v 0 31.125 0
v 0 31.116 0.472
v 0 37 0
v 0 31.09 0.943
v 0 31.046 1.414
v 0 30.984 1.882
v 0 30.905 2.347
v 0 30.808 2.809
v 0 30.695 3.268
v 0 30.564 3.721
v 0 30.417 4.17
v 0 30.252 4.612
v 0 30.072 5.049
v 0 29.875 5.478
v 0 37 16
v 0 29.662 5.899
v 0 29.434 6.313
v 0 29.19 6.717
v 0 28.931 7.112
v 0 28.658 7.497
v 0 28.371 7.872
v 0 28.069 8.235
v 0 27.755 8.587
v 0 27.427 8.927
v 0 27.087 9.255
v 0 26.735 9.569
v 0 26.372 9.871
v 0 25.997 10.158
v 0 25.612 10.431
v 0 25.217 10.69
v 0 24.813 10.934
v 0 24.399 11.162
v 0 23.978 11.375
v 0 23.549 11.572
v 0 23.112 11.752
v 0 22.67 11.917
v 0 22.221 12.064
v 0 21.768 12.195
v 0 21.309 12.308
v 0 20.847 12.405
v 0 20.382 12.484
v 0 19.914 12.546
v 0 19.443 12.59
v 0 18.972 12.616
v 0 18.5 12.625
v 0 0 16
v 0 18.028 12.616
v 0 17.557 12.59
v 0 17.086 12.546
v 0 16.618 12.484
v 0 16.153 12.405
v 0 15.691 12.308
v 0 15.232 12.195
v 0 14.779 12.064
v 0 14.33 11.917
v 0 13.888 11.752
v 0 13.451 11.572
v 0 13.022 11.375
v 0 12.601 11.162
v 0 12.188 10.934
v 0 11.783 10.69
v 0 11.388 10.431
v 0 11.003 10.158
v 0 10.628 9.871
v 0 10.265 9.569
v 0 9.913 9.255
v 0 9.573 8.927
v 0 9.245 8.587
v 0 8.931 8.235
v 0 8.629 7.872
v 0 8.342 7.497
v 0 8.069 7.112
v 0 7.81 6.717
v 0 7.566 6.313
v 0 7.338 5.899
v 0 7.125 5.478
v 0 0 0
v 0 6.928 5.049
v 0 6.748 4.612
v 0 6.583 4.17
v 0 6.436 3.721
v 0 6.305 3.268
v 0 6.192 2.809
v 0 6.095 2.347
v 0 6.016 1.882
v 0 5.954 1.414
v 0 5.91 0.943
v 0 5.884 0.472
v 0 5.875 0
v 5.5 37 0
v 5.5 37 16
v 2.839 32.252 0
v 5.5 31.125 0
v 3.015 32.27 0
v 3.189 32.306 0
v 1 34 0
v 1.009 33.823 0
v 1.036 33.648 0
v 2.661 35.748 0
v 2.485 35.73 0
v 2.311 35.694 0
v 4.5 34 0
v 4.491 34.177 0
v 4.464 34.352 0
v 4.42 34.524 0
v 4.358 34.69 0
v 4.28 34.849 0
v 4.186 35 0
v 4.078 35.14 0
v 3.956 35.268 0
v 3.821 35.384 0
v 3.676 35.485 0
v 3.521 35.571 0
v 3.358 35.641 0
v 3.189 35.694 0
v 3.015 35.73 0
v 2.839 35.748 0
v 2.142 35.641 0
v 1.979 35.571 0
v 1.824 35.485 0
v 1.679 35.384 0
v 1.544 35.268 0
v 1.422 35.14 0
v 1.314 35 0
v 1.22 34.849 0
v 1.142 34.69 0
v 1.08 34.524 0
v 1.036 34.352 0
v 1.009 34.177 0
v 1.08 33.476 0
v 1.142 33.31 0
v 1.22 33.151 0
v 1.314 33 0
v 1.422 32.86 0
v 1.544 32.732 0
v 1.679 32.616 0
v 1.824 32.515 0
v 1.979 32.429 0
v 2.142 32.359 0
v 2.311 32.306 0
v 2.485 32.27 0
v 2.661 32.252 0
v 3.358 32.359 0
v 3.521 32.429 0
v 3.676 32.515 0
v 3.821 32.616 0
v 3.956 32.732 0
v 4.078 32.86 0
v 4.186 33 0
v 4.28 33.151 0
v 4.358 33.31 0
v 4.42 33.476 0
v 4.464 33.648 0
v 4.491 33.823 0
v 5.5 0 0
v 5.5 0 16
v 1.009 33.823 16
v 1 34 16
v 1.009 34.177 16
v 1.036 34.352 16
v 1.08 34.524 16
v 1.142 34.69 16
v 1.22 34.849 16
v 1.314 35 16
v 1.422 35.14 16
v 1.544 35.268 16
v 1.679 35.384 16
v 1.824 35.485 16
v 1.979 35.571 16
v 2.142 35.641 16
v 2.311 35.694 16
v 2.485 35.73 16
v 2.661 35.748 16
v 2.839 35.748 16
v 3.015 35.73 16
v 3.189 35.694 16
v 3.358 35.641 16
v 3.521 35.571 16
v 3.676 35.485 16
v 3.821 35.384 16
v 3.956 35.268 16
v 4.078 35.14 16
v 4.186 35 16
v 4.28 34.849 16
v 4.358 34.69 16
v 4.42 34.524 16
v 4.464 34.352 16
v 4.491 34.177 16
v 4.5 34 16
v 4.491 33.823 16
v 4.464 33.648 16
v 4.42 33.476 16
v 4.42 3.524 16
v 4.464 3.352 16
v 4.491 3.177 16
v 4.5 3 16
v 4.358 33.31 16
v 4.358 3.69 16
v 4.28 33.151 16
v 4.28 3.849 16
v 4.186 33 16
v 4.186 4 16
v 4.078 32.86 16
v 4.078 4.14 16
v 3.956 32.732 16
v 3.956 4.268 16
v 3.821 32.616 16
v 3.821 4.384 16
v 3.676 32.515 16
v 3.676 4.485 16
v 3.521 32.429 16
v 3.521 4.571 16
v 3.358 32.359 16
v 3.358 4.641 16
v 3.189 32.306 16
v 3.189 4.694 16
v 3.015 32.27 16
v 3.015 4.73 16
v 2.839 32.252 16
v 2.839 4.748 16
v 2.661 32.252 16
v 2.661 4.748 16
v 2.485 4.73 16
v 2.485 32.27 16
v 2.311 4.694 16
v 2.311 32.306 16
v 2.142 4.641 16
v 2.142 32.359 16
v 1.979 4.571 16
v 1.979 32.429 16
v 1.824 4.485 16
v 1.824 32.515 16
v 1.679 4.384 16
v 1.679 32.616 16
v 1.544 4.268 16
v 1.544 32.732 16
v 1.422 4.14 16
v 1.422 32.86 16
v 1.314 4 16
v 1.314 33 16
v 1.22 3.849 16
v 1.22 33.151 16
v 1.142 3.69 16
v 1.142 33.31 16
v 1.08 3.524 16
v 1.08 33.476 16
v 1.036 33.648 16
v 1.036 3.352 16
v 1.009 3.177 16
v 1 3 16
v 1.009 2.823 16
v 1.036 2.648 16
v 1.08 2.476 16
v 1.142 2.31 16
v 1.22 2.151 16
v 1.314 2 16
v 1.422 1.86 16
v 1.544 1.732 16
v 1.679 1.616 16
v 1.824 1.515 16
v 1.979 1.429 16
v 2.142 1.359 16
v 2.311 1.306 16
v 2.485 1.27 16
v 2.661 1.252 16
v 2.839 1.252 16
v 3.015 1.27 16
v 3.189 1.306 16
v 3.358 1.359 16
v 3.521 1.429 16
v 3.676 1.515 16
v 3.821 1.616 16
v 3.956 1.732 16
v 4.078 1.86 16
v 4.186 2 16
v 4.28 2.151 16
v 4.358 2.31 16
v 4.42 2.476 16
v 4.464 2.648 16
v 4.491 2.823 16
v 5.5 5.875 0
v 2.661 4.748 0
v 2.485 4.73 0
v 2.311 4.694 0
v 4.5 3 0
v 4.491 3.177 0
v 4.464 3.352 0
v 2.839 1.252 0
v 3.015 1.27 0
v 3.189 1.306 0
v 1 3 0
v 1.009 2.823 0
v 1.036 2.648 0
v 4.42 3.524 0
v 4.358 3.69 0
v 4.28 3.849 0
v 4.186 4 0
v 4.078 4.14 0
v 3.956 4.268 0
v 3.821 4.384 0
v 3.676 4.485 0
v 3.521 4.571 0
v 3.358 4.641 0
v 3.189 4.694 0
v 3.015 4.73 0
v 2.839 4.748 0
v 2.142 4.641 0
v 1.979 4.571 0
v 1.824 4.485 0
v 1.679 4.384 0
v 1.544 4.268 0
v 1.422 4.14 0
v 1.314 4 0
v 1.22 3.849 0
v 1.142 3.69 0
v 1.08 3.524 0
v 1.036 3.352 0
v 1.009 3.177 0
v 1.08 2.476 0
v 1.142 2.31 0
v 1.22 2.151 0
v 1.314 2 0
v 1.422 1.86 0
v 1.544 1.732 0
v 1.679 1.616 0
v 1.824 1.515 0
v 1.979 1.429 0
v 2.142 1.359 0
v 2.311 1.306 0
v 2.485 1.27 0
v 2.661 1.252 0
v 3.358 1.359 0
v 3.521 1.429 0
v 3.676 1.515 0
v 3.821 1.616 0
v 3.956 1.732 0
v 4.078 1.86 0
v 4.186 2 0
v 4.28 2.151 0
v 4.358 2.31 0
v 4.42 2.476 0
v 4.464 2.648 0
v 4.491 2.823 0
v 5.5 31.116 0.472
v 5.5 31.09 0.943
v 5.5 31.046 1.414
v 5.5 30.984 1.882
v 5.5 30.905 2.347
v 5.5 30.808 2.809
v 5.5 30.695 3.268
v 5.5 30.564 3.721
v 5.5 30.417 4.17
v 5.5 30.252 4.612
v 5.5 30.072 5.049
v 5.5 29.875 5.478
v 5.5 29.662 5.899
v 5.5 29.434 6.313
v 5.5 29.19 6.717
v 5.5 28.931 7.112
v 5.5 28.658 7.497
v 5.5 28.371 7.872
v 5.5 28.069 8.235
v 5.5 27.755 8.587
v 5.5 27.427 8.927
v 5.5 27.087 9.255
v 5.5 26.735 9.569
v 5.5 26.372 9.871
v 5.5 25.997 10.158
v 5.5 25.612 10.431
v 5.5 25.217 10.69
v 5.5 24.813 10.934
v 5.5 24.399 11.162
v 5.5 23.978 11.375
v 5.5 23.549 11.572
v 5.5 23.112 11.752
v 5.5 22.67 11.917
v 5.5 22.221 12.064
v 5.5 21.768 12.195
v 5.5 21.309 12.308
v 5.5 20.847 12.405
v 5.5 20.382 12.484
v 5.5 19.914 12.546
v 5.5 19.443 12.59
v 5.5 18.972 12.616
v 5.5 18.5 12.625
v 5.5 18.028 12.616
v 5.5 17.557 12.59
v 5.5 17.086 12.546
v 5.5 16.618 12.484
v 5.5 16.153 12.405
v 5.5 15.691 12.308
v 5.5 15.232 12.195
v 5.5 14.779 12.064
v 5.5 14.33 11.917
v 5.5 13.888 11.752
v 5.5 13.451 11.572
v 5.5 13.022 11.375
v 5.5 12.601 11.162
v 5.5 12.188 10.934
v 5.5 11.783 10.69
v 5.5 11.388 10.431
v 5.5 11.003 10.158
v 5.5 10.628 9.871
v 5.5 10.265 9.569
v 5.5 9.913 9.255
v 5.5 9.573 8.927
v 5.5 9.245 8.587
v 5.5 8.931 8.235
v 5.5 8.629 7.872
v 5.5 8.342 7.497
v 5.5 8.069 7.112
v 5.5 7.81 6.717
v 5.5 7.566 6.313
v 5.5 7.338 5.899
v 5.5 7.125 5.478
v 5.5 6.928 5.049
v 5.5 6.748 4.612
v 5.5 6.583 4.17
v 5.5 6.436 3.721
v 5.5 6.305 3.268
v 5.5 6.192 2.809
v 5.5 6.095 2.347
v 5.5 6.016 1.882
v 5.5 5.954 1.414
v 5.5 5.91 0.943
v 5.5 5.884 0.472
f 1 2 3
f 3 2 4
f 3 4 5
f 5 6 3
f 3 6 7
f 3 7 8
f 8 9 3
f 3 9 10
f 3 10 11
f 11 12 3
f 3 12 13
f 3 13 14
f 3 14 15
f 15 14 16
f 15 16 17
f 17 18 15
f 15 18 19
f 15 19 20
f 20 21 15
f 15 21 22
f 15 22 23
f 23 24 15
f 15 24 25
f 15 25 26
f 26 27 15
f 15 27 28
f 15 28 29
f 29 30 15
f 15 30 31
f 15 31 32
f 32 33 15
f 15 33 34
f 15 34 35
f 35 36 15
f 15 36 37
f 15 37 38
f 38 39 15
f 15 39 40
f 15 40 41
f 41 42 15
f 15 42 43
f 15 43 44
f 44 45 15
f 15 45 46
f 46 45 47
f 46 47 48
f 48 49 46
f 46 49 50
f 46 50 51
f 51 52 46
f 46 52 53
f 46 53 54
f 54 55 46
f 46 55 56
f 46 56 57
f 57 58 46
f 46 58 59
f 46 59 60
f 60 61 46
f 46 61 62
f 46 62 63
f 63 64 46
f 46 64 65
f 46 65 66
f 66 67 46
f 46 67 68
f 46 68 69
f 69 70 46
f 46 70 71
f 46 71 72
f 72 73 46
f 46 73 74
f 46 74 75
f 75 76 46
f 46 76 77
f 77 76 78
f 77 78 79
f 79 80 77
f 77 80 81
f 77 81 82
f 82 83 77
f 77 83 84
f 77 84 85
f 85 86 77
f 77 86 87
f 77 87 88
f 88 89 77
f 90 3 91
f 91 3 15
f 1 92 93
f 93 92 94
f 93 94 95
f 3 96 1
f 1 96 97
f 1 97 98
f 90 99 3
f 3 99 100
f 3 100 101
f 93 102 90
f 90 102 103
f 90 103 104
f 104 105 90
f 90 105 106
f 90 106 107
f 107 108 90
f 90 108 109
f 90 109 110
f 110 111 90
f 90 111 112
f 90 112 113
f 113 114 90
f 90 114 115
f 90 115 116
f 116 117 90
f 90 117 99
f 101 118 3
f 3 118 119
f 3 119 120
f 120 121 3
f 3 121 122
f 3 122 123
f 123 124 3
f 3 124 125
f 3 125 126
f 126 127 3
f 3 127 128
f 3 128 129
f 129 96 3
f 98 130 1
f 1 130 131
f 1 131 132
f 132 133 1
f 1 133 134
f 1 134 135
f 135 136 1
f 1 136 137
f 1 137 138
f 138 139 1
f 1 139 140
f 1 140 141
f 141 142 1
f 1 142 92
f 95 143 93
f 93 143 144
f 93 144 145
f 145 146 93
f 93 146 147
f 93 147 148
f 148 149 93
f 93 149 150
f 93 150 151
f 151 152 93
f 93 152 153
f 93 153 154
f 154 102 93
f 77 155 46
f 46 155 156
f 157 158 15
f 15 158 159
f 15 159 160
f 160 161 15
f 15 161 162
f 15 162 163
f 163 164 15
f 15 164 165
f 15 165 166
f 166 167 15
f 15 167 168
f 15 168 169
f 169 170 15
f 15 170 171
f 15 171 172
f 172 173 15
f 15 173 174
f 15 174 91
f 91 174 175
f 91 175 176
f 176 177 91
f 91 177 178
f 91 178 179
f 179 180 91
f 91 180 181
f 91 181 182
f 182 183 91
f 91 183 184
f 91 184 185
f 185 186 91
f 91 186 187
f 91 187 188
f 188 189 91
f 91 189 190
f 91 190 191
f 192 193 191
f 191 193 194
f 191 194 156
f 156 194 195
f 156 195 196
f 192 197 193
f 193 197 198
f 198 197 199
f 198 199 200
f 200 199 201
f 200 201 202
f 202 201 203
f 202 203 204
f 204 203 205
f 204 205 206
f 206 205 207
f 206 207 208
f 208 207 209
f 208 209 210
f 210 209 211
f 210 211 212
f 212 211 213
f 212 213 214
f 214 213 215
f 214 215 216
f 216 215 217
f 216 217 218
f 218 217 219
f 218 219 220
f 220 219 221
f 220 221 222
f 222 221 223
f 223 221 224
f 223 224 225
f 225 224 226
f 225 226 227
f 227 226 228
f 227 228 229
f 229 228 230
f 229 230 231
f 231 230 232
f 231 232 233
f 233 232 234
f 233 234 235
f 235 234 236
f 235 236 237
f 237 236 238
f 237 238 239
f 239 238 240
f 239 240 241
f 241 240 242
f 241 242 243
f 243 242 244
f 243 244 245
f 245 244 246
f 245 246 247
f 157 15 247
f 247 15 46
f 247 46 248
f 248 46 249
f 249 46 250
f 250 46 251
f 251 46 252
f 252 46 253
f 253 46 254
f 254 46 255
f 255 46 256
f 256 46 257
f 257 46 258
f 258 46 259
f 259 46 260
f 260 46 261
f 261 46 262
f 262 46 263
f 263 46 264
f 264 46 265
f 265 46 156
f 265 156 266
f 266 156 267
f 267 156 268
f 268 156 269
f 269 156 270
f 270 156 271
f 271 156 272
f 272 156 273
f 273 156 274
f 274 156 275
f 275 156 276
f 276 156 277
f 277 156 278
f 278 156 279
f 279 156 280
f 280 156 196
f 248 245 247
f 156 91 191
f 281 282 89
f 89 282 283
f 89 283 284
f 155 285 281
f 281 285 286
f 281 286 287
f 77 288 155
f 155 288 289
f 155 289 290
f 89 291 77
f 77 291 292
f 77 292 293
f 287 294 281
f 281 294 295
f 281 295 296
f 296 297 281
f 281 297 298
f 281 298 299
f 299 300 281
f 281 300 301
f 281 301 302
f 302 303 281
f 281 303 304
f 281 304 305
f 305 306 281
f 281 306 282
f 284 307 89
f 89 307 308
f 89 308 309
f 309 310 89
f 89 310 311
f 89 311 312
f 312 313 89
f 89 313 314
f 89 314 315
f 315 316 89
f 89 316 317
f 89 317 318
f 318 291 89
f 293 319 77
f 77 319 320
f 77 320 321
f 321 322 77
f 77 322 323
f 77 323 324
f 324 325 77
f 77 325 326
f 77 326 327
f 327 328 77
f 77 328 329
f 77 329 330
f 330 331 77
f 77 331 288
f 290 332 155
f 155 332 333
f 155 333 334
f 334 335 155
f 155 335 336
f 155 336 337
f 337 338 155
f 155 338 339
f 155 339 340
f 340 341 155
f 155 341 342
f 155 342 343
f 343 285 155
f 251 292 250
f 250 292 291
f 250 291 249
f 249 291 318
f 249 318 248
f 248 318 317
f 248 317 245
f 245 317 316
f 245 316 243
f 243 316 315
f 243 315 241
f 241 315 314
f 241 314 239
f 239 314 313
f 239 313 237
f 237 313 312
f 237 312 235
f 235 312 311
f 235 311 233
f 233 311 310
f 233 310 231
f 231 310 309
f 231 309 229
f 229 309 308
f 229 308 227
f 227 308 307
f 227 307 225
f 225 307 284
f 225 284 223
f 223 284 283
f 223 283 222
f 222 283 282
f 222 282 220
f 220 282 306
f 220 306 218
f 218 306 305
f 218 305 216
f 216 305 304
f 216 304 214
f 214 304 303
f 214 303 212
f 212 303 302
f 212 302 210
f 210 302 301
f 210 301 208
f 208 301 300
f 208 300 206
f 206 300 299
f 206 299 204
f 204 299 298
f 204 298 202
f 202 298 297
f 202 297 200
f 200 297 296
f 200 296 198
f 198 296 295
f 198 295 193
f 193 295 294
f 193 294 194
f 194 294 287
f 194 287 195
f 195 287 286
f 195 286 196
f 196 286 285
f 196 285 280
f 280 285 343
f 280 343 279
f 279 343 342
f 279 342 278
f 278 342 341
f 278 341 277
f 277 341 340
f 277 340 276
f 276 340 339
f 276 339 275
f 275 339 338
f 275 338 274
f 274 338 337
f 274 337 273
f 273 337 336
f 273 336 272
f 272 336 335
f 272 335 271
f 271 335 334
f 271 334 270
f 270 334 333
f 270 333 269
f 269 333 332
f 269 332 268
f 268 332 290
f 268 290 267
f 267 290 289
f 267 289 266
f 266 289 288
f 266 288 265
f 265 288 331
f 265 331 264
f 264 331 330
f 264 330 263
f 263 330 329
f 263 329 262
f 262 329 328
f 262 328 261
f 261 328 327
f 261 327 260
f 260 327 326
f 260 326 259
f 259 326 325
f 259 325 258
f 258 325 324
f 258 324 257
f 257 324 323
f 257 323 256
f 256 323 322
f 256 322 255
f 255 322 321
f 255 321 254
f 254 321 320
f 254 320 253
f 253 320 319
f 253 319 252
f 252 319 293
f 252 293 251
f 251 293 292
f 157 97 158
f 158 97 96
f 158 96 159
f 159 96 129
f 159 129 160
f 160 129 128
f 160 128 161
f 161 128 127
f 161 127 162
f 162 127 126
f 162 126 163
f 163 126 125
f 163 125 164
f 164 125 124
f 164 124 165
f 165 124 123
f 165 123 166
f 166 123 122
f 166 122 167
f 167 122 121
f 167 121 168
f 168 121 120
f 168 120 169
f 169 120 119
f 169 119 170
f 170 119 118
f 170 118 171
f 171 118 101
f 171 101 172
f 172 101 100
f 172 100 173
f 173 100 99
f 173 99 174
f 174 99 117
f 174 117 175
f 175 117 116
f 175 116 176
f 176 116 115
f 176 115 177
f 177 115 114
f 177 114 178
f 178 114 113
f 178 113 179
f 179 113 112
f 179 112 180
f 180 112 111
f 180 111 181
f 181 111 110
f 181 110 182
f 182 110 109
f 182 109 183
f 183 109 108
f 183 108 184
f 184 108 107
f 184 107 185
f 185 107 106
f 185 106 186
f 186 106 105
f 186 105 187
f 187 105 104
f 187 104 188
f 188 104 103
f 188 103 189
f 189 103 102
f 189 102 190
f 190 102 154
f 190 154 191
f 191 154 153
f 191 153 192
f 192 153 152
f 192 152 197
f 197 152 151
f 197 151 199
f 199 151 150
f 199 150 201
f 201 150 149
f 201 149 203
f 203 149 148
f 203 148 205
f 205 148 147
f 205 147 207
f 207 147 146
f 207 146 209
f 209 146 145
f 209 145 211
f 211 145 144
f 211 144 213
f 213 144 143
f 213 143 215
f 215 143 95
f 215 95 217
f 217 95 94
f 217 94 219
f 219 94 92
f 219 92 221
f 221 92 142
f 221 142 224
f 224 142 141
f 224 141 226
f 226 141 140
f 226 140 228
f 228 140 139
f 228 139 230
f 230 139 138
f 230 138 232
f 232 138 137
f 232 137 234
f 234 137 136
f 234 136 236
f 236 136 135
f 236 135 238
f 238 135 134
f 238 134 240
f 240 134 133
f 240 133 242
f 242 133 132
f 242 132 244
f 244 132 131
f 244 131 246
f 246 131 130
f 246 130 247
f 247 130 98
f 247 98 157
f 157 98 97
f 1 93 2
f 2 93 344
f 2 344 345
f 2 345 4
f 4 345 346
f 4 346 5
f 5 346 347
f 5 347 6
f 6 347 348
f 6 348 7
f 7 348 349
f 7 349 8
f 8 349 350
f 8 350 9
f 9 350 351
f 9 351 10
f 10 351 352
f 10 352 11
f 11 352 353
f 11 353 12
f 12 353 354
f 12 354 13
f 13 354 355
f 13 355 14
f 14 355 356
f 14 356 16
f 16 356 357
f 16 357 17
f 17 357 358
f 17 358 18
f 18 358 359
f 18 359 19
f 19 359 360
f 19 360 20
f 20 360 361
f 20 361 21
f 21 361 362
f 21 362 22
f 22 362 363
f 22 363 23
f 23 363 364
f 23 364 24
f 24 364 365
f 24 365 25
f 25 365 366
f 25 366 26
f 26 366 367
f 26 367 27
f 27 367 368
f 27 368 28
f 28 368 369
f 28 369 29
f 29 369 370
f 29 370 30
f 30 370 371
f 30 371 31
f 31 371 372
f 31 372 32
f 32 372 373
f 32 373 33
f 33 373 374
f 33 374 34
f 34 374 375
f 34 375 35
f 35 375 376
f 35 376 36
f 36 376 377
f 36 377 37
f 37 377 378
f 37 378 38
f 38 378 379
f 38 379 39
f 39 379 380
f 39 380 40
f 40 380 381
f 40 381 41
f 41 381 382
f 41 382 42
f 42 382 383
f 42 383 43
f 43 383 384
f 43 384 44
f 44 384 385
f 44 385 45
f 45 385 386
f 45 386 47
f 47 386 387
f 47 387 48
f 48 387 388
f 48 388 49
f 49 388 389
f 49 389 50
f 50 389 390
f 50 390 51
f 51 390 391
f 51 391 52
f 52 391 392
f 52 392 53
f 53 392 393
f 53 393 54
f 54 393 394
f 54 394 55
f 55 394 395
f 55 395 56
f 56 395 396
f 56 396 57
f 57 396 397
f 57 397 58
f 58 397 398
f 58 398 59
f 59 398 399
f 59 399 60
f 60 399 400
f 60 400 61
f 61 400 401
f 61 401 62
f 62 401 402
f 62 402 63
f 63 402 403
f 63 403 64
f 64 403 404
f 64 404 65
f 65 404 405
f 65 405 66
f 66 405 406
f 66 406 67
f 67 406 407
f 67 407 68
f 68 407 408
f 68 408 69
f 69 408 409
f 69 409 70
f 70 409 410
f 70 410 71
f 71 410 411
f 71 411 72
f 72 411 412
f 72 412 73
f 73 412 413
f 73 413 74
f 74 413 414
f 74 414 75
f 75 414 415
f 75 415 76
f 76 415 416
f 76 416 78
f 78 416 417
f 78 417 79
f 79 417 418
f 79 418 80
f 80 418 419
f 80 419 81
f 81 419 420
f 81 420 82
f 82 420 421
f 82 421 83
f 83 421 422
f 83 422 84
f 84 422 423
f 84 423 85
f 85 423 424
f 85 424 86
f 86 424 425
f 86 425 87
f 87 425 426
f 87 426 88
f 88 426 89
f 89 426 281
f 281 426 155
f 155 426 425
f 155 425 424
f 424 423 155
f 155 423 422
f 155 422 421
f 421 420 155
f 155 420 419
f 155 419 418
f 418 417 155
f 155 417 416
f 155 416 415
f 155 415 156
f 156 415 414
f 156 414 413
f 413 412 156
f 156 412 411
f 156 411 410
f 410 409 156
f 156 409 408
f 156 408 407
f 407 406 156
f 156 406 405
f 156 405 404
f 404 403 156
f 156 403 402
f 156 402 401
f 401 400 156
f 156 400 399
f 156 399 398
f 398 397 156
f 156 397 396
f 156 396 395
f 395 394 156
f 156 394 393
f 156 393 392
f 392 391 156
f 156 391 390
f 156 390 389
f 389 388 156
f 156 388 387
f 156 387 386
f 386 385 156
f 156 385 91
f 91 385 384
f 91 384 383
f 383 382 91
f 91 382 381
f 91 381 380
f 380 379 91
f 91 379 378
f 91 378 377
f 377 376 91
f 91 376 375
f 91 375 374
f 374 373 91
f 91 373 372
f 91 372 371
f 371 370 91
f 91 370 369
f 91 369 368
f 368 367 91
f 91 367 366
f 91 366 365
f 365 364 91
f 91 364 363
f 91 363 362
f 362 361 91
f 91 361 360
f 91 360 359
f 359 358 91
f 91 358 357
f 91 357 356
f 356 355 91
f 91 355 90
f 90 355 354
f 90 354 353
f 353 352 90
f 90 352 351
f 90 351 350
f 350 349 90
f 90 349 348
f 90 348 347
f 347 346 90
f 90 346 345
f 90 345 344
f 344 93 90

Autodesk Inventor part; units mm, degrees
ref_plane "YZ Plane" through (0, 0, 0) normal (1, 0, 0) x (0, 1, 0)
ref_plane "XZ Plane" through (0, 0, 0) normal (0, 1, 0) x (-1, 0, 0)
ref_plane "XY Plane" through (0, 0, 0) normal (0, 0, 1) x (1, 0, 0)
sketch "Sketch1" plane through (0, 0, 0) normal (0, 0, 1) x (1, 0, 0)
  line L0 (0, 0) -> (5.5, 0)
  line L1 (5.5, 0) -> (5.5, 37)
  line L2 (5.5, 37) -> (0, 37)
  line L3 (0, 37) -> (0, 0)
  point P0 (2.75, 34)
  point P1 (2.75, 3)
  dimension "d7" = 5.5
  dimension "d8" = 37
  dimension "d9" = 31
  dimension "d10" = 3
  dimension "d11" = 2.75
extrude "Extrusion4" add sketch "Sketch1" along normal blind 16
sketch "Sketch6" plane through (0, 0, 0) normal (0, 0, 1) x (1, 0, 0)
  line L0 (0, 0) -> (5.5, 0)
  line L1 (5.5, 0) -> (5.5, 37)
  line L2 (5.5, 37) -> (0, 37)
  line L3 (0, 37) -> (0, 0)
  point P0 (2.75, 34)
  point P1 (2.75, 3)
  dimension "d45" = 5.5
  dimension "d46" = 37
  dimension "d47" = 31
  dimension "d48" = 3
  dimension "d49" = 2.75
hole "Hole3" at (2.75, 34, 0) at (2.75, 3, 0) direction (0, 0, 1) diameter 3.5 end through all
sketch "Sketch7" plane through (5.5, 0, 0) normal (1, 0, 0) x (0, 0, -1)
  line L0 (0, 0) -> (0, 37) projected
  arc A0 (0, 31.125) -> (0, 5.875) centre (0, 18.5) ccw
  line L1 (0, 31.125) -> (0, 5.875)
  dimension "d59" = 25.25
extrude "Extrusion5" cut sketch "Sketch7" against normal blind 5.5
properties part number "SujetadorColaVTOL"
